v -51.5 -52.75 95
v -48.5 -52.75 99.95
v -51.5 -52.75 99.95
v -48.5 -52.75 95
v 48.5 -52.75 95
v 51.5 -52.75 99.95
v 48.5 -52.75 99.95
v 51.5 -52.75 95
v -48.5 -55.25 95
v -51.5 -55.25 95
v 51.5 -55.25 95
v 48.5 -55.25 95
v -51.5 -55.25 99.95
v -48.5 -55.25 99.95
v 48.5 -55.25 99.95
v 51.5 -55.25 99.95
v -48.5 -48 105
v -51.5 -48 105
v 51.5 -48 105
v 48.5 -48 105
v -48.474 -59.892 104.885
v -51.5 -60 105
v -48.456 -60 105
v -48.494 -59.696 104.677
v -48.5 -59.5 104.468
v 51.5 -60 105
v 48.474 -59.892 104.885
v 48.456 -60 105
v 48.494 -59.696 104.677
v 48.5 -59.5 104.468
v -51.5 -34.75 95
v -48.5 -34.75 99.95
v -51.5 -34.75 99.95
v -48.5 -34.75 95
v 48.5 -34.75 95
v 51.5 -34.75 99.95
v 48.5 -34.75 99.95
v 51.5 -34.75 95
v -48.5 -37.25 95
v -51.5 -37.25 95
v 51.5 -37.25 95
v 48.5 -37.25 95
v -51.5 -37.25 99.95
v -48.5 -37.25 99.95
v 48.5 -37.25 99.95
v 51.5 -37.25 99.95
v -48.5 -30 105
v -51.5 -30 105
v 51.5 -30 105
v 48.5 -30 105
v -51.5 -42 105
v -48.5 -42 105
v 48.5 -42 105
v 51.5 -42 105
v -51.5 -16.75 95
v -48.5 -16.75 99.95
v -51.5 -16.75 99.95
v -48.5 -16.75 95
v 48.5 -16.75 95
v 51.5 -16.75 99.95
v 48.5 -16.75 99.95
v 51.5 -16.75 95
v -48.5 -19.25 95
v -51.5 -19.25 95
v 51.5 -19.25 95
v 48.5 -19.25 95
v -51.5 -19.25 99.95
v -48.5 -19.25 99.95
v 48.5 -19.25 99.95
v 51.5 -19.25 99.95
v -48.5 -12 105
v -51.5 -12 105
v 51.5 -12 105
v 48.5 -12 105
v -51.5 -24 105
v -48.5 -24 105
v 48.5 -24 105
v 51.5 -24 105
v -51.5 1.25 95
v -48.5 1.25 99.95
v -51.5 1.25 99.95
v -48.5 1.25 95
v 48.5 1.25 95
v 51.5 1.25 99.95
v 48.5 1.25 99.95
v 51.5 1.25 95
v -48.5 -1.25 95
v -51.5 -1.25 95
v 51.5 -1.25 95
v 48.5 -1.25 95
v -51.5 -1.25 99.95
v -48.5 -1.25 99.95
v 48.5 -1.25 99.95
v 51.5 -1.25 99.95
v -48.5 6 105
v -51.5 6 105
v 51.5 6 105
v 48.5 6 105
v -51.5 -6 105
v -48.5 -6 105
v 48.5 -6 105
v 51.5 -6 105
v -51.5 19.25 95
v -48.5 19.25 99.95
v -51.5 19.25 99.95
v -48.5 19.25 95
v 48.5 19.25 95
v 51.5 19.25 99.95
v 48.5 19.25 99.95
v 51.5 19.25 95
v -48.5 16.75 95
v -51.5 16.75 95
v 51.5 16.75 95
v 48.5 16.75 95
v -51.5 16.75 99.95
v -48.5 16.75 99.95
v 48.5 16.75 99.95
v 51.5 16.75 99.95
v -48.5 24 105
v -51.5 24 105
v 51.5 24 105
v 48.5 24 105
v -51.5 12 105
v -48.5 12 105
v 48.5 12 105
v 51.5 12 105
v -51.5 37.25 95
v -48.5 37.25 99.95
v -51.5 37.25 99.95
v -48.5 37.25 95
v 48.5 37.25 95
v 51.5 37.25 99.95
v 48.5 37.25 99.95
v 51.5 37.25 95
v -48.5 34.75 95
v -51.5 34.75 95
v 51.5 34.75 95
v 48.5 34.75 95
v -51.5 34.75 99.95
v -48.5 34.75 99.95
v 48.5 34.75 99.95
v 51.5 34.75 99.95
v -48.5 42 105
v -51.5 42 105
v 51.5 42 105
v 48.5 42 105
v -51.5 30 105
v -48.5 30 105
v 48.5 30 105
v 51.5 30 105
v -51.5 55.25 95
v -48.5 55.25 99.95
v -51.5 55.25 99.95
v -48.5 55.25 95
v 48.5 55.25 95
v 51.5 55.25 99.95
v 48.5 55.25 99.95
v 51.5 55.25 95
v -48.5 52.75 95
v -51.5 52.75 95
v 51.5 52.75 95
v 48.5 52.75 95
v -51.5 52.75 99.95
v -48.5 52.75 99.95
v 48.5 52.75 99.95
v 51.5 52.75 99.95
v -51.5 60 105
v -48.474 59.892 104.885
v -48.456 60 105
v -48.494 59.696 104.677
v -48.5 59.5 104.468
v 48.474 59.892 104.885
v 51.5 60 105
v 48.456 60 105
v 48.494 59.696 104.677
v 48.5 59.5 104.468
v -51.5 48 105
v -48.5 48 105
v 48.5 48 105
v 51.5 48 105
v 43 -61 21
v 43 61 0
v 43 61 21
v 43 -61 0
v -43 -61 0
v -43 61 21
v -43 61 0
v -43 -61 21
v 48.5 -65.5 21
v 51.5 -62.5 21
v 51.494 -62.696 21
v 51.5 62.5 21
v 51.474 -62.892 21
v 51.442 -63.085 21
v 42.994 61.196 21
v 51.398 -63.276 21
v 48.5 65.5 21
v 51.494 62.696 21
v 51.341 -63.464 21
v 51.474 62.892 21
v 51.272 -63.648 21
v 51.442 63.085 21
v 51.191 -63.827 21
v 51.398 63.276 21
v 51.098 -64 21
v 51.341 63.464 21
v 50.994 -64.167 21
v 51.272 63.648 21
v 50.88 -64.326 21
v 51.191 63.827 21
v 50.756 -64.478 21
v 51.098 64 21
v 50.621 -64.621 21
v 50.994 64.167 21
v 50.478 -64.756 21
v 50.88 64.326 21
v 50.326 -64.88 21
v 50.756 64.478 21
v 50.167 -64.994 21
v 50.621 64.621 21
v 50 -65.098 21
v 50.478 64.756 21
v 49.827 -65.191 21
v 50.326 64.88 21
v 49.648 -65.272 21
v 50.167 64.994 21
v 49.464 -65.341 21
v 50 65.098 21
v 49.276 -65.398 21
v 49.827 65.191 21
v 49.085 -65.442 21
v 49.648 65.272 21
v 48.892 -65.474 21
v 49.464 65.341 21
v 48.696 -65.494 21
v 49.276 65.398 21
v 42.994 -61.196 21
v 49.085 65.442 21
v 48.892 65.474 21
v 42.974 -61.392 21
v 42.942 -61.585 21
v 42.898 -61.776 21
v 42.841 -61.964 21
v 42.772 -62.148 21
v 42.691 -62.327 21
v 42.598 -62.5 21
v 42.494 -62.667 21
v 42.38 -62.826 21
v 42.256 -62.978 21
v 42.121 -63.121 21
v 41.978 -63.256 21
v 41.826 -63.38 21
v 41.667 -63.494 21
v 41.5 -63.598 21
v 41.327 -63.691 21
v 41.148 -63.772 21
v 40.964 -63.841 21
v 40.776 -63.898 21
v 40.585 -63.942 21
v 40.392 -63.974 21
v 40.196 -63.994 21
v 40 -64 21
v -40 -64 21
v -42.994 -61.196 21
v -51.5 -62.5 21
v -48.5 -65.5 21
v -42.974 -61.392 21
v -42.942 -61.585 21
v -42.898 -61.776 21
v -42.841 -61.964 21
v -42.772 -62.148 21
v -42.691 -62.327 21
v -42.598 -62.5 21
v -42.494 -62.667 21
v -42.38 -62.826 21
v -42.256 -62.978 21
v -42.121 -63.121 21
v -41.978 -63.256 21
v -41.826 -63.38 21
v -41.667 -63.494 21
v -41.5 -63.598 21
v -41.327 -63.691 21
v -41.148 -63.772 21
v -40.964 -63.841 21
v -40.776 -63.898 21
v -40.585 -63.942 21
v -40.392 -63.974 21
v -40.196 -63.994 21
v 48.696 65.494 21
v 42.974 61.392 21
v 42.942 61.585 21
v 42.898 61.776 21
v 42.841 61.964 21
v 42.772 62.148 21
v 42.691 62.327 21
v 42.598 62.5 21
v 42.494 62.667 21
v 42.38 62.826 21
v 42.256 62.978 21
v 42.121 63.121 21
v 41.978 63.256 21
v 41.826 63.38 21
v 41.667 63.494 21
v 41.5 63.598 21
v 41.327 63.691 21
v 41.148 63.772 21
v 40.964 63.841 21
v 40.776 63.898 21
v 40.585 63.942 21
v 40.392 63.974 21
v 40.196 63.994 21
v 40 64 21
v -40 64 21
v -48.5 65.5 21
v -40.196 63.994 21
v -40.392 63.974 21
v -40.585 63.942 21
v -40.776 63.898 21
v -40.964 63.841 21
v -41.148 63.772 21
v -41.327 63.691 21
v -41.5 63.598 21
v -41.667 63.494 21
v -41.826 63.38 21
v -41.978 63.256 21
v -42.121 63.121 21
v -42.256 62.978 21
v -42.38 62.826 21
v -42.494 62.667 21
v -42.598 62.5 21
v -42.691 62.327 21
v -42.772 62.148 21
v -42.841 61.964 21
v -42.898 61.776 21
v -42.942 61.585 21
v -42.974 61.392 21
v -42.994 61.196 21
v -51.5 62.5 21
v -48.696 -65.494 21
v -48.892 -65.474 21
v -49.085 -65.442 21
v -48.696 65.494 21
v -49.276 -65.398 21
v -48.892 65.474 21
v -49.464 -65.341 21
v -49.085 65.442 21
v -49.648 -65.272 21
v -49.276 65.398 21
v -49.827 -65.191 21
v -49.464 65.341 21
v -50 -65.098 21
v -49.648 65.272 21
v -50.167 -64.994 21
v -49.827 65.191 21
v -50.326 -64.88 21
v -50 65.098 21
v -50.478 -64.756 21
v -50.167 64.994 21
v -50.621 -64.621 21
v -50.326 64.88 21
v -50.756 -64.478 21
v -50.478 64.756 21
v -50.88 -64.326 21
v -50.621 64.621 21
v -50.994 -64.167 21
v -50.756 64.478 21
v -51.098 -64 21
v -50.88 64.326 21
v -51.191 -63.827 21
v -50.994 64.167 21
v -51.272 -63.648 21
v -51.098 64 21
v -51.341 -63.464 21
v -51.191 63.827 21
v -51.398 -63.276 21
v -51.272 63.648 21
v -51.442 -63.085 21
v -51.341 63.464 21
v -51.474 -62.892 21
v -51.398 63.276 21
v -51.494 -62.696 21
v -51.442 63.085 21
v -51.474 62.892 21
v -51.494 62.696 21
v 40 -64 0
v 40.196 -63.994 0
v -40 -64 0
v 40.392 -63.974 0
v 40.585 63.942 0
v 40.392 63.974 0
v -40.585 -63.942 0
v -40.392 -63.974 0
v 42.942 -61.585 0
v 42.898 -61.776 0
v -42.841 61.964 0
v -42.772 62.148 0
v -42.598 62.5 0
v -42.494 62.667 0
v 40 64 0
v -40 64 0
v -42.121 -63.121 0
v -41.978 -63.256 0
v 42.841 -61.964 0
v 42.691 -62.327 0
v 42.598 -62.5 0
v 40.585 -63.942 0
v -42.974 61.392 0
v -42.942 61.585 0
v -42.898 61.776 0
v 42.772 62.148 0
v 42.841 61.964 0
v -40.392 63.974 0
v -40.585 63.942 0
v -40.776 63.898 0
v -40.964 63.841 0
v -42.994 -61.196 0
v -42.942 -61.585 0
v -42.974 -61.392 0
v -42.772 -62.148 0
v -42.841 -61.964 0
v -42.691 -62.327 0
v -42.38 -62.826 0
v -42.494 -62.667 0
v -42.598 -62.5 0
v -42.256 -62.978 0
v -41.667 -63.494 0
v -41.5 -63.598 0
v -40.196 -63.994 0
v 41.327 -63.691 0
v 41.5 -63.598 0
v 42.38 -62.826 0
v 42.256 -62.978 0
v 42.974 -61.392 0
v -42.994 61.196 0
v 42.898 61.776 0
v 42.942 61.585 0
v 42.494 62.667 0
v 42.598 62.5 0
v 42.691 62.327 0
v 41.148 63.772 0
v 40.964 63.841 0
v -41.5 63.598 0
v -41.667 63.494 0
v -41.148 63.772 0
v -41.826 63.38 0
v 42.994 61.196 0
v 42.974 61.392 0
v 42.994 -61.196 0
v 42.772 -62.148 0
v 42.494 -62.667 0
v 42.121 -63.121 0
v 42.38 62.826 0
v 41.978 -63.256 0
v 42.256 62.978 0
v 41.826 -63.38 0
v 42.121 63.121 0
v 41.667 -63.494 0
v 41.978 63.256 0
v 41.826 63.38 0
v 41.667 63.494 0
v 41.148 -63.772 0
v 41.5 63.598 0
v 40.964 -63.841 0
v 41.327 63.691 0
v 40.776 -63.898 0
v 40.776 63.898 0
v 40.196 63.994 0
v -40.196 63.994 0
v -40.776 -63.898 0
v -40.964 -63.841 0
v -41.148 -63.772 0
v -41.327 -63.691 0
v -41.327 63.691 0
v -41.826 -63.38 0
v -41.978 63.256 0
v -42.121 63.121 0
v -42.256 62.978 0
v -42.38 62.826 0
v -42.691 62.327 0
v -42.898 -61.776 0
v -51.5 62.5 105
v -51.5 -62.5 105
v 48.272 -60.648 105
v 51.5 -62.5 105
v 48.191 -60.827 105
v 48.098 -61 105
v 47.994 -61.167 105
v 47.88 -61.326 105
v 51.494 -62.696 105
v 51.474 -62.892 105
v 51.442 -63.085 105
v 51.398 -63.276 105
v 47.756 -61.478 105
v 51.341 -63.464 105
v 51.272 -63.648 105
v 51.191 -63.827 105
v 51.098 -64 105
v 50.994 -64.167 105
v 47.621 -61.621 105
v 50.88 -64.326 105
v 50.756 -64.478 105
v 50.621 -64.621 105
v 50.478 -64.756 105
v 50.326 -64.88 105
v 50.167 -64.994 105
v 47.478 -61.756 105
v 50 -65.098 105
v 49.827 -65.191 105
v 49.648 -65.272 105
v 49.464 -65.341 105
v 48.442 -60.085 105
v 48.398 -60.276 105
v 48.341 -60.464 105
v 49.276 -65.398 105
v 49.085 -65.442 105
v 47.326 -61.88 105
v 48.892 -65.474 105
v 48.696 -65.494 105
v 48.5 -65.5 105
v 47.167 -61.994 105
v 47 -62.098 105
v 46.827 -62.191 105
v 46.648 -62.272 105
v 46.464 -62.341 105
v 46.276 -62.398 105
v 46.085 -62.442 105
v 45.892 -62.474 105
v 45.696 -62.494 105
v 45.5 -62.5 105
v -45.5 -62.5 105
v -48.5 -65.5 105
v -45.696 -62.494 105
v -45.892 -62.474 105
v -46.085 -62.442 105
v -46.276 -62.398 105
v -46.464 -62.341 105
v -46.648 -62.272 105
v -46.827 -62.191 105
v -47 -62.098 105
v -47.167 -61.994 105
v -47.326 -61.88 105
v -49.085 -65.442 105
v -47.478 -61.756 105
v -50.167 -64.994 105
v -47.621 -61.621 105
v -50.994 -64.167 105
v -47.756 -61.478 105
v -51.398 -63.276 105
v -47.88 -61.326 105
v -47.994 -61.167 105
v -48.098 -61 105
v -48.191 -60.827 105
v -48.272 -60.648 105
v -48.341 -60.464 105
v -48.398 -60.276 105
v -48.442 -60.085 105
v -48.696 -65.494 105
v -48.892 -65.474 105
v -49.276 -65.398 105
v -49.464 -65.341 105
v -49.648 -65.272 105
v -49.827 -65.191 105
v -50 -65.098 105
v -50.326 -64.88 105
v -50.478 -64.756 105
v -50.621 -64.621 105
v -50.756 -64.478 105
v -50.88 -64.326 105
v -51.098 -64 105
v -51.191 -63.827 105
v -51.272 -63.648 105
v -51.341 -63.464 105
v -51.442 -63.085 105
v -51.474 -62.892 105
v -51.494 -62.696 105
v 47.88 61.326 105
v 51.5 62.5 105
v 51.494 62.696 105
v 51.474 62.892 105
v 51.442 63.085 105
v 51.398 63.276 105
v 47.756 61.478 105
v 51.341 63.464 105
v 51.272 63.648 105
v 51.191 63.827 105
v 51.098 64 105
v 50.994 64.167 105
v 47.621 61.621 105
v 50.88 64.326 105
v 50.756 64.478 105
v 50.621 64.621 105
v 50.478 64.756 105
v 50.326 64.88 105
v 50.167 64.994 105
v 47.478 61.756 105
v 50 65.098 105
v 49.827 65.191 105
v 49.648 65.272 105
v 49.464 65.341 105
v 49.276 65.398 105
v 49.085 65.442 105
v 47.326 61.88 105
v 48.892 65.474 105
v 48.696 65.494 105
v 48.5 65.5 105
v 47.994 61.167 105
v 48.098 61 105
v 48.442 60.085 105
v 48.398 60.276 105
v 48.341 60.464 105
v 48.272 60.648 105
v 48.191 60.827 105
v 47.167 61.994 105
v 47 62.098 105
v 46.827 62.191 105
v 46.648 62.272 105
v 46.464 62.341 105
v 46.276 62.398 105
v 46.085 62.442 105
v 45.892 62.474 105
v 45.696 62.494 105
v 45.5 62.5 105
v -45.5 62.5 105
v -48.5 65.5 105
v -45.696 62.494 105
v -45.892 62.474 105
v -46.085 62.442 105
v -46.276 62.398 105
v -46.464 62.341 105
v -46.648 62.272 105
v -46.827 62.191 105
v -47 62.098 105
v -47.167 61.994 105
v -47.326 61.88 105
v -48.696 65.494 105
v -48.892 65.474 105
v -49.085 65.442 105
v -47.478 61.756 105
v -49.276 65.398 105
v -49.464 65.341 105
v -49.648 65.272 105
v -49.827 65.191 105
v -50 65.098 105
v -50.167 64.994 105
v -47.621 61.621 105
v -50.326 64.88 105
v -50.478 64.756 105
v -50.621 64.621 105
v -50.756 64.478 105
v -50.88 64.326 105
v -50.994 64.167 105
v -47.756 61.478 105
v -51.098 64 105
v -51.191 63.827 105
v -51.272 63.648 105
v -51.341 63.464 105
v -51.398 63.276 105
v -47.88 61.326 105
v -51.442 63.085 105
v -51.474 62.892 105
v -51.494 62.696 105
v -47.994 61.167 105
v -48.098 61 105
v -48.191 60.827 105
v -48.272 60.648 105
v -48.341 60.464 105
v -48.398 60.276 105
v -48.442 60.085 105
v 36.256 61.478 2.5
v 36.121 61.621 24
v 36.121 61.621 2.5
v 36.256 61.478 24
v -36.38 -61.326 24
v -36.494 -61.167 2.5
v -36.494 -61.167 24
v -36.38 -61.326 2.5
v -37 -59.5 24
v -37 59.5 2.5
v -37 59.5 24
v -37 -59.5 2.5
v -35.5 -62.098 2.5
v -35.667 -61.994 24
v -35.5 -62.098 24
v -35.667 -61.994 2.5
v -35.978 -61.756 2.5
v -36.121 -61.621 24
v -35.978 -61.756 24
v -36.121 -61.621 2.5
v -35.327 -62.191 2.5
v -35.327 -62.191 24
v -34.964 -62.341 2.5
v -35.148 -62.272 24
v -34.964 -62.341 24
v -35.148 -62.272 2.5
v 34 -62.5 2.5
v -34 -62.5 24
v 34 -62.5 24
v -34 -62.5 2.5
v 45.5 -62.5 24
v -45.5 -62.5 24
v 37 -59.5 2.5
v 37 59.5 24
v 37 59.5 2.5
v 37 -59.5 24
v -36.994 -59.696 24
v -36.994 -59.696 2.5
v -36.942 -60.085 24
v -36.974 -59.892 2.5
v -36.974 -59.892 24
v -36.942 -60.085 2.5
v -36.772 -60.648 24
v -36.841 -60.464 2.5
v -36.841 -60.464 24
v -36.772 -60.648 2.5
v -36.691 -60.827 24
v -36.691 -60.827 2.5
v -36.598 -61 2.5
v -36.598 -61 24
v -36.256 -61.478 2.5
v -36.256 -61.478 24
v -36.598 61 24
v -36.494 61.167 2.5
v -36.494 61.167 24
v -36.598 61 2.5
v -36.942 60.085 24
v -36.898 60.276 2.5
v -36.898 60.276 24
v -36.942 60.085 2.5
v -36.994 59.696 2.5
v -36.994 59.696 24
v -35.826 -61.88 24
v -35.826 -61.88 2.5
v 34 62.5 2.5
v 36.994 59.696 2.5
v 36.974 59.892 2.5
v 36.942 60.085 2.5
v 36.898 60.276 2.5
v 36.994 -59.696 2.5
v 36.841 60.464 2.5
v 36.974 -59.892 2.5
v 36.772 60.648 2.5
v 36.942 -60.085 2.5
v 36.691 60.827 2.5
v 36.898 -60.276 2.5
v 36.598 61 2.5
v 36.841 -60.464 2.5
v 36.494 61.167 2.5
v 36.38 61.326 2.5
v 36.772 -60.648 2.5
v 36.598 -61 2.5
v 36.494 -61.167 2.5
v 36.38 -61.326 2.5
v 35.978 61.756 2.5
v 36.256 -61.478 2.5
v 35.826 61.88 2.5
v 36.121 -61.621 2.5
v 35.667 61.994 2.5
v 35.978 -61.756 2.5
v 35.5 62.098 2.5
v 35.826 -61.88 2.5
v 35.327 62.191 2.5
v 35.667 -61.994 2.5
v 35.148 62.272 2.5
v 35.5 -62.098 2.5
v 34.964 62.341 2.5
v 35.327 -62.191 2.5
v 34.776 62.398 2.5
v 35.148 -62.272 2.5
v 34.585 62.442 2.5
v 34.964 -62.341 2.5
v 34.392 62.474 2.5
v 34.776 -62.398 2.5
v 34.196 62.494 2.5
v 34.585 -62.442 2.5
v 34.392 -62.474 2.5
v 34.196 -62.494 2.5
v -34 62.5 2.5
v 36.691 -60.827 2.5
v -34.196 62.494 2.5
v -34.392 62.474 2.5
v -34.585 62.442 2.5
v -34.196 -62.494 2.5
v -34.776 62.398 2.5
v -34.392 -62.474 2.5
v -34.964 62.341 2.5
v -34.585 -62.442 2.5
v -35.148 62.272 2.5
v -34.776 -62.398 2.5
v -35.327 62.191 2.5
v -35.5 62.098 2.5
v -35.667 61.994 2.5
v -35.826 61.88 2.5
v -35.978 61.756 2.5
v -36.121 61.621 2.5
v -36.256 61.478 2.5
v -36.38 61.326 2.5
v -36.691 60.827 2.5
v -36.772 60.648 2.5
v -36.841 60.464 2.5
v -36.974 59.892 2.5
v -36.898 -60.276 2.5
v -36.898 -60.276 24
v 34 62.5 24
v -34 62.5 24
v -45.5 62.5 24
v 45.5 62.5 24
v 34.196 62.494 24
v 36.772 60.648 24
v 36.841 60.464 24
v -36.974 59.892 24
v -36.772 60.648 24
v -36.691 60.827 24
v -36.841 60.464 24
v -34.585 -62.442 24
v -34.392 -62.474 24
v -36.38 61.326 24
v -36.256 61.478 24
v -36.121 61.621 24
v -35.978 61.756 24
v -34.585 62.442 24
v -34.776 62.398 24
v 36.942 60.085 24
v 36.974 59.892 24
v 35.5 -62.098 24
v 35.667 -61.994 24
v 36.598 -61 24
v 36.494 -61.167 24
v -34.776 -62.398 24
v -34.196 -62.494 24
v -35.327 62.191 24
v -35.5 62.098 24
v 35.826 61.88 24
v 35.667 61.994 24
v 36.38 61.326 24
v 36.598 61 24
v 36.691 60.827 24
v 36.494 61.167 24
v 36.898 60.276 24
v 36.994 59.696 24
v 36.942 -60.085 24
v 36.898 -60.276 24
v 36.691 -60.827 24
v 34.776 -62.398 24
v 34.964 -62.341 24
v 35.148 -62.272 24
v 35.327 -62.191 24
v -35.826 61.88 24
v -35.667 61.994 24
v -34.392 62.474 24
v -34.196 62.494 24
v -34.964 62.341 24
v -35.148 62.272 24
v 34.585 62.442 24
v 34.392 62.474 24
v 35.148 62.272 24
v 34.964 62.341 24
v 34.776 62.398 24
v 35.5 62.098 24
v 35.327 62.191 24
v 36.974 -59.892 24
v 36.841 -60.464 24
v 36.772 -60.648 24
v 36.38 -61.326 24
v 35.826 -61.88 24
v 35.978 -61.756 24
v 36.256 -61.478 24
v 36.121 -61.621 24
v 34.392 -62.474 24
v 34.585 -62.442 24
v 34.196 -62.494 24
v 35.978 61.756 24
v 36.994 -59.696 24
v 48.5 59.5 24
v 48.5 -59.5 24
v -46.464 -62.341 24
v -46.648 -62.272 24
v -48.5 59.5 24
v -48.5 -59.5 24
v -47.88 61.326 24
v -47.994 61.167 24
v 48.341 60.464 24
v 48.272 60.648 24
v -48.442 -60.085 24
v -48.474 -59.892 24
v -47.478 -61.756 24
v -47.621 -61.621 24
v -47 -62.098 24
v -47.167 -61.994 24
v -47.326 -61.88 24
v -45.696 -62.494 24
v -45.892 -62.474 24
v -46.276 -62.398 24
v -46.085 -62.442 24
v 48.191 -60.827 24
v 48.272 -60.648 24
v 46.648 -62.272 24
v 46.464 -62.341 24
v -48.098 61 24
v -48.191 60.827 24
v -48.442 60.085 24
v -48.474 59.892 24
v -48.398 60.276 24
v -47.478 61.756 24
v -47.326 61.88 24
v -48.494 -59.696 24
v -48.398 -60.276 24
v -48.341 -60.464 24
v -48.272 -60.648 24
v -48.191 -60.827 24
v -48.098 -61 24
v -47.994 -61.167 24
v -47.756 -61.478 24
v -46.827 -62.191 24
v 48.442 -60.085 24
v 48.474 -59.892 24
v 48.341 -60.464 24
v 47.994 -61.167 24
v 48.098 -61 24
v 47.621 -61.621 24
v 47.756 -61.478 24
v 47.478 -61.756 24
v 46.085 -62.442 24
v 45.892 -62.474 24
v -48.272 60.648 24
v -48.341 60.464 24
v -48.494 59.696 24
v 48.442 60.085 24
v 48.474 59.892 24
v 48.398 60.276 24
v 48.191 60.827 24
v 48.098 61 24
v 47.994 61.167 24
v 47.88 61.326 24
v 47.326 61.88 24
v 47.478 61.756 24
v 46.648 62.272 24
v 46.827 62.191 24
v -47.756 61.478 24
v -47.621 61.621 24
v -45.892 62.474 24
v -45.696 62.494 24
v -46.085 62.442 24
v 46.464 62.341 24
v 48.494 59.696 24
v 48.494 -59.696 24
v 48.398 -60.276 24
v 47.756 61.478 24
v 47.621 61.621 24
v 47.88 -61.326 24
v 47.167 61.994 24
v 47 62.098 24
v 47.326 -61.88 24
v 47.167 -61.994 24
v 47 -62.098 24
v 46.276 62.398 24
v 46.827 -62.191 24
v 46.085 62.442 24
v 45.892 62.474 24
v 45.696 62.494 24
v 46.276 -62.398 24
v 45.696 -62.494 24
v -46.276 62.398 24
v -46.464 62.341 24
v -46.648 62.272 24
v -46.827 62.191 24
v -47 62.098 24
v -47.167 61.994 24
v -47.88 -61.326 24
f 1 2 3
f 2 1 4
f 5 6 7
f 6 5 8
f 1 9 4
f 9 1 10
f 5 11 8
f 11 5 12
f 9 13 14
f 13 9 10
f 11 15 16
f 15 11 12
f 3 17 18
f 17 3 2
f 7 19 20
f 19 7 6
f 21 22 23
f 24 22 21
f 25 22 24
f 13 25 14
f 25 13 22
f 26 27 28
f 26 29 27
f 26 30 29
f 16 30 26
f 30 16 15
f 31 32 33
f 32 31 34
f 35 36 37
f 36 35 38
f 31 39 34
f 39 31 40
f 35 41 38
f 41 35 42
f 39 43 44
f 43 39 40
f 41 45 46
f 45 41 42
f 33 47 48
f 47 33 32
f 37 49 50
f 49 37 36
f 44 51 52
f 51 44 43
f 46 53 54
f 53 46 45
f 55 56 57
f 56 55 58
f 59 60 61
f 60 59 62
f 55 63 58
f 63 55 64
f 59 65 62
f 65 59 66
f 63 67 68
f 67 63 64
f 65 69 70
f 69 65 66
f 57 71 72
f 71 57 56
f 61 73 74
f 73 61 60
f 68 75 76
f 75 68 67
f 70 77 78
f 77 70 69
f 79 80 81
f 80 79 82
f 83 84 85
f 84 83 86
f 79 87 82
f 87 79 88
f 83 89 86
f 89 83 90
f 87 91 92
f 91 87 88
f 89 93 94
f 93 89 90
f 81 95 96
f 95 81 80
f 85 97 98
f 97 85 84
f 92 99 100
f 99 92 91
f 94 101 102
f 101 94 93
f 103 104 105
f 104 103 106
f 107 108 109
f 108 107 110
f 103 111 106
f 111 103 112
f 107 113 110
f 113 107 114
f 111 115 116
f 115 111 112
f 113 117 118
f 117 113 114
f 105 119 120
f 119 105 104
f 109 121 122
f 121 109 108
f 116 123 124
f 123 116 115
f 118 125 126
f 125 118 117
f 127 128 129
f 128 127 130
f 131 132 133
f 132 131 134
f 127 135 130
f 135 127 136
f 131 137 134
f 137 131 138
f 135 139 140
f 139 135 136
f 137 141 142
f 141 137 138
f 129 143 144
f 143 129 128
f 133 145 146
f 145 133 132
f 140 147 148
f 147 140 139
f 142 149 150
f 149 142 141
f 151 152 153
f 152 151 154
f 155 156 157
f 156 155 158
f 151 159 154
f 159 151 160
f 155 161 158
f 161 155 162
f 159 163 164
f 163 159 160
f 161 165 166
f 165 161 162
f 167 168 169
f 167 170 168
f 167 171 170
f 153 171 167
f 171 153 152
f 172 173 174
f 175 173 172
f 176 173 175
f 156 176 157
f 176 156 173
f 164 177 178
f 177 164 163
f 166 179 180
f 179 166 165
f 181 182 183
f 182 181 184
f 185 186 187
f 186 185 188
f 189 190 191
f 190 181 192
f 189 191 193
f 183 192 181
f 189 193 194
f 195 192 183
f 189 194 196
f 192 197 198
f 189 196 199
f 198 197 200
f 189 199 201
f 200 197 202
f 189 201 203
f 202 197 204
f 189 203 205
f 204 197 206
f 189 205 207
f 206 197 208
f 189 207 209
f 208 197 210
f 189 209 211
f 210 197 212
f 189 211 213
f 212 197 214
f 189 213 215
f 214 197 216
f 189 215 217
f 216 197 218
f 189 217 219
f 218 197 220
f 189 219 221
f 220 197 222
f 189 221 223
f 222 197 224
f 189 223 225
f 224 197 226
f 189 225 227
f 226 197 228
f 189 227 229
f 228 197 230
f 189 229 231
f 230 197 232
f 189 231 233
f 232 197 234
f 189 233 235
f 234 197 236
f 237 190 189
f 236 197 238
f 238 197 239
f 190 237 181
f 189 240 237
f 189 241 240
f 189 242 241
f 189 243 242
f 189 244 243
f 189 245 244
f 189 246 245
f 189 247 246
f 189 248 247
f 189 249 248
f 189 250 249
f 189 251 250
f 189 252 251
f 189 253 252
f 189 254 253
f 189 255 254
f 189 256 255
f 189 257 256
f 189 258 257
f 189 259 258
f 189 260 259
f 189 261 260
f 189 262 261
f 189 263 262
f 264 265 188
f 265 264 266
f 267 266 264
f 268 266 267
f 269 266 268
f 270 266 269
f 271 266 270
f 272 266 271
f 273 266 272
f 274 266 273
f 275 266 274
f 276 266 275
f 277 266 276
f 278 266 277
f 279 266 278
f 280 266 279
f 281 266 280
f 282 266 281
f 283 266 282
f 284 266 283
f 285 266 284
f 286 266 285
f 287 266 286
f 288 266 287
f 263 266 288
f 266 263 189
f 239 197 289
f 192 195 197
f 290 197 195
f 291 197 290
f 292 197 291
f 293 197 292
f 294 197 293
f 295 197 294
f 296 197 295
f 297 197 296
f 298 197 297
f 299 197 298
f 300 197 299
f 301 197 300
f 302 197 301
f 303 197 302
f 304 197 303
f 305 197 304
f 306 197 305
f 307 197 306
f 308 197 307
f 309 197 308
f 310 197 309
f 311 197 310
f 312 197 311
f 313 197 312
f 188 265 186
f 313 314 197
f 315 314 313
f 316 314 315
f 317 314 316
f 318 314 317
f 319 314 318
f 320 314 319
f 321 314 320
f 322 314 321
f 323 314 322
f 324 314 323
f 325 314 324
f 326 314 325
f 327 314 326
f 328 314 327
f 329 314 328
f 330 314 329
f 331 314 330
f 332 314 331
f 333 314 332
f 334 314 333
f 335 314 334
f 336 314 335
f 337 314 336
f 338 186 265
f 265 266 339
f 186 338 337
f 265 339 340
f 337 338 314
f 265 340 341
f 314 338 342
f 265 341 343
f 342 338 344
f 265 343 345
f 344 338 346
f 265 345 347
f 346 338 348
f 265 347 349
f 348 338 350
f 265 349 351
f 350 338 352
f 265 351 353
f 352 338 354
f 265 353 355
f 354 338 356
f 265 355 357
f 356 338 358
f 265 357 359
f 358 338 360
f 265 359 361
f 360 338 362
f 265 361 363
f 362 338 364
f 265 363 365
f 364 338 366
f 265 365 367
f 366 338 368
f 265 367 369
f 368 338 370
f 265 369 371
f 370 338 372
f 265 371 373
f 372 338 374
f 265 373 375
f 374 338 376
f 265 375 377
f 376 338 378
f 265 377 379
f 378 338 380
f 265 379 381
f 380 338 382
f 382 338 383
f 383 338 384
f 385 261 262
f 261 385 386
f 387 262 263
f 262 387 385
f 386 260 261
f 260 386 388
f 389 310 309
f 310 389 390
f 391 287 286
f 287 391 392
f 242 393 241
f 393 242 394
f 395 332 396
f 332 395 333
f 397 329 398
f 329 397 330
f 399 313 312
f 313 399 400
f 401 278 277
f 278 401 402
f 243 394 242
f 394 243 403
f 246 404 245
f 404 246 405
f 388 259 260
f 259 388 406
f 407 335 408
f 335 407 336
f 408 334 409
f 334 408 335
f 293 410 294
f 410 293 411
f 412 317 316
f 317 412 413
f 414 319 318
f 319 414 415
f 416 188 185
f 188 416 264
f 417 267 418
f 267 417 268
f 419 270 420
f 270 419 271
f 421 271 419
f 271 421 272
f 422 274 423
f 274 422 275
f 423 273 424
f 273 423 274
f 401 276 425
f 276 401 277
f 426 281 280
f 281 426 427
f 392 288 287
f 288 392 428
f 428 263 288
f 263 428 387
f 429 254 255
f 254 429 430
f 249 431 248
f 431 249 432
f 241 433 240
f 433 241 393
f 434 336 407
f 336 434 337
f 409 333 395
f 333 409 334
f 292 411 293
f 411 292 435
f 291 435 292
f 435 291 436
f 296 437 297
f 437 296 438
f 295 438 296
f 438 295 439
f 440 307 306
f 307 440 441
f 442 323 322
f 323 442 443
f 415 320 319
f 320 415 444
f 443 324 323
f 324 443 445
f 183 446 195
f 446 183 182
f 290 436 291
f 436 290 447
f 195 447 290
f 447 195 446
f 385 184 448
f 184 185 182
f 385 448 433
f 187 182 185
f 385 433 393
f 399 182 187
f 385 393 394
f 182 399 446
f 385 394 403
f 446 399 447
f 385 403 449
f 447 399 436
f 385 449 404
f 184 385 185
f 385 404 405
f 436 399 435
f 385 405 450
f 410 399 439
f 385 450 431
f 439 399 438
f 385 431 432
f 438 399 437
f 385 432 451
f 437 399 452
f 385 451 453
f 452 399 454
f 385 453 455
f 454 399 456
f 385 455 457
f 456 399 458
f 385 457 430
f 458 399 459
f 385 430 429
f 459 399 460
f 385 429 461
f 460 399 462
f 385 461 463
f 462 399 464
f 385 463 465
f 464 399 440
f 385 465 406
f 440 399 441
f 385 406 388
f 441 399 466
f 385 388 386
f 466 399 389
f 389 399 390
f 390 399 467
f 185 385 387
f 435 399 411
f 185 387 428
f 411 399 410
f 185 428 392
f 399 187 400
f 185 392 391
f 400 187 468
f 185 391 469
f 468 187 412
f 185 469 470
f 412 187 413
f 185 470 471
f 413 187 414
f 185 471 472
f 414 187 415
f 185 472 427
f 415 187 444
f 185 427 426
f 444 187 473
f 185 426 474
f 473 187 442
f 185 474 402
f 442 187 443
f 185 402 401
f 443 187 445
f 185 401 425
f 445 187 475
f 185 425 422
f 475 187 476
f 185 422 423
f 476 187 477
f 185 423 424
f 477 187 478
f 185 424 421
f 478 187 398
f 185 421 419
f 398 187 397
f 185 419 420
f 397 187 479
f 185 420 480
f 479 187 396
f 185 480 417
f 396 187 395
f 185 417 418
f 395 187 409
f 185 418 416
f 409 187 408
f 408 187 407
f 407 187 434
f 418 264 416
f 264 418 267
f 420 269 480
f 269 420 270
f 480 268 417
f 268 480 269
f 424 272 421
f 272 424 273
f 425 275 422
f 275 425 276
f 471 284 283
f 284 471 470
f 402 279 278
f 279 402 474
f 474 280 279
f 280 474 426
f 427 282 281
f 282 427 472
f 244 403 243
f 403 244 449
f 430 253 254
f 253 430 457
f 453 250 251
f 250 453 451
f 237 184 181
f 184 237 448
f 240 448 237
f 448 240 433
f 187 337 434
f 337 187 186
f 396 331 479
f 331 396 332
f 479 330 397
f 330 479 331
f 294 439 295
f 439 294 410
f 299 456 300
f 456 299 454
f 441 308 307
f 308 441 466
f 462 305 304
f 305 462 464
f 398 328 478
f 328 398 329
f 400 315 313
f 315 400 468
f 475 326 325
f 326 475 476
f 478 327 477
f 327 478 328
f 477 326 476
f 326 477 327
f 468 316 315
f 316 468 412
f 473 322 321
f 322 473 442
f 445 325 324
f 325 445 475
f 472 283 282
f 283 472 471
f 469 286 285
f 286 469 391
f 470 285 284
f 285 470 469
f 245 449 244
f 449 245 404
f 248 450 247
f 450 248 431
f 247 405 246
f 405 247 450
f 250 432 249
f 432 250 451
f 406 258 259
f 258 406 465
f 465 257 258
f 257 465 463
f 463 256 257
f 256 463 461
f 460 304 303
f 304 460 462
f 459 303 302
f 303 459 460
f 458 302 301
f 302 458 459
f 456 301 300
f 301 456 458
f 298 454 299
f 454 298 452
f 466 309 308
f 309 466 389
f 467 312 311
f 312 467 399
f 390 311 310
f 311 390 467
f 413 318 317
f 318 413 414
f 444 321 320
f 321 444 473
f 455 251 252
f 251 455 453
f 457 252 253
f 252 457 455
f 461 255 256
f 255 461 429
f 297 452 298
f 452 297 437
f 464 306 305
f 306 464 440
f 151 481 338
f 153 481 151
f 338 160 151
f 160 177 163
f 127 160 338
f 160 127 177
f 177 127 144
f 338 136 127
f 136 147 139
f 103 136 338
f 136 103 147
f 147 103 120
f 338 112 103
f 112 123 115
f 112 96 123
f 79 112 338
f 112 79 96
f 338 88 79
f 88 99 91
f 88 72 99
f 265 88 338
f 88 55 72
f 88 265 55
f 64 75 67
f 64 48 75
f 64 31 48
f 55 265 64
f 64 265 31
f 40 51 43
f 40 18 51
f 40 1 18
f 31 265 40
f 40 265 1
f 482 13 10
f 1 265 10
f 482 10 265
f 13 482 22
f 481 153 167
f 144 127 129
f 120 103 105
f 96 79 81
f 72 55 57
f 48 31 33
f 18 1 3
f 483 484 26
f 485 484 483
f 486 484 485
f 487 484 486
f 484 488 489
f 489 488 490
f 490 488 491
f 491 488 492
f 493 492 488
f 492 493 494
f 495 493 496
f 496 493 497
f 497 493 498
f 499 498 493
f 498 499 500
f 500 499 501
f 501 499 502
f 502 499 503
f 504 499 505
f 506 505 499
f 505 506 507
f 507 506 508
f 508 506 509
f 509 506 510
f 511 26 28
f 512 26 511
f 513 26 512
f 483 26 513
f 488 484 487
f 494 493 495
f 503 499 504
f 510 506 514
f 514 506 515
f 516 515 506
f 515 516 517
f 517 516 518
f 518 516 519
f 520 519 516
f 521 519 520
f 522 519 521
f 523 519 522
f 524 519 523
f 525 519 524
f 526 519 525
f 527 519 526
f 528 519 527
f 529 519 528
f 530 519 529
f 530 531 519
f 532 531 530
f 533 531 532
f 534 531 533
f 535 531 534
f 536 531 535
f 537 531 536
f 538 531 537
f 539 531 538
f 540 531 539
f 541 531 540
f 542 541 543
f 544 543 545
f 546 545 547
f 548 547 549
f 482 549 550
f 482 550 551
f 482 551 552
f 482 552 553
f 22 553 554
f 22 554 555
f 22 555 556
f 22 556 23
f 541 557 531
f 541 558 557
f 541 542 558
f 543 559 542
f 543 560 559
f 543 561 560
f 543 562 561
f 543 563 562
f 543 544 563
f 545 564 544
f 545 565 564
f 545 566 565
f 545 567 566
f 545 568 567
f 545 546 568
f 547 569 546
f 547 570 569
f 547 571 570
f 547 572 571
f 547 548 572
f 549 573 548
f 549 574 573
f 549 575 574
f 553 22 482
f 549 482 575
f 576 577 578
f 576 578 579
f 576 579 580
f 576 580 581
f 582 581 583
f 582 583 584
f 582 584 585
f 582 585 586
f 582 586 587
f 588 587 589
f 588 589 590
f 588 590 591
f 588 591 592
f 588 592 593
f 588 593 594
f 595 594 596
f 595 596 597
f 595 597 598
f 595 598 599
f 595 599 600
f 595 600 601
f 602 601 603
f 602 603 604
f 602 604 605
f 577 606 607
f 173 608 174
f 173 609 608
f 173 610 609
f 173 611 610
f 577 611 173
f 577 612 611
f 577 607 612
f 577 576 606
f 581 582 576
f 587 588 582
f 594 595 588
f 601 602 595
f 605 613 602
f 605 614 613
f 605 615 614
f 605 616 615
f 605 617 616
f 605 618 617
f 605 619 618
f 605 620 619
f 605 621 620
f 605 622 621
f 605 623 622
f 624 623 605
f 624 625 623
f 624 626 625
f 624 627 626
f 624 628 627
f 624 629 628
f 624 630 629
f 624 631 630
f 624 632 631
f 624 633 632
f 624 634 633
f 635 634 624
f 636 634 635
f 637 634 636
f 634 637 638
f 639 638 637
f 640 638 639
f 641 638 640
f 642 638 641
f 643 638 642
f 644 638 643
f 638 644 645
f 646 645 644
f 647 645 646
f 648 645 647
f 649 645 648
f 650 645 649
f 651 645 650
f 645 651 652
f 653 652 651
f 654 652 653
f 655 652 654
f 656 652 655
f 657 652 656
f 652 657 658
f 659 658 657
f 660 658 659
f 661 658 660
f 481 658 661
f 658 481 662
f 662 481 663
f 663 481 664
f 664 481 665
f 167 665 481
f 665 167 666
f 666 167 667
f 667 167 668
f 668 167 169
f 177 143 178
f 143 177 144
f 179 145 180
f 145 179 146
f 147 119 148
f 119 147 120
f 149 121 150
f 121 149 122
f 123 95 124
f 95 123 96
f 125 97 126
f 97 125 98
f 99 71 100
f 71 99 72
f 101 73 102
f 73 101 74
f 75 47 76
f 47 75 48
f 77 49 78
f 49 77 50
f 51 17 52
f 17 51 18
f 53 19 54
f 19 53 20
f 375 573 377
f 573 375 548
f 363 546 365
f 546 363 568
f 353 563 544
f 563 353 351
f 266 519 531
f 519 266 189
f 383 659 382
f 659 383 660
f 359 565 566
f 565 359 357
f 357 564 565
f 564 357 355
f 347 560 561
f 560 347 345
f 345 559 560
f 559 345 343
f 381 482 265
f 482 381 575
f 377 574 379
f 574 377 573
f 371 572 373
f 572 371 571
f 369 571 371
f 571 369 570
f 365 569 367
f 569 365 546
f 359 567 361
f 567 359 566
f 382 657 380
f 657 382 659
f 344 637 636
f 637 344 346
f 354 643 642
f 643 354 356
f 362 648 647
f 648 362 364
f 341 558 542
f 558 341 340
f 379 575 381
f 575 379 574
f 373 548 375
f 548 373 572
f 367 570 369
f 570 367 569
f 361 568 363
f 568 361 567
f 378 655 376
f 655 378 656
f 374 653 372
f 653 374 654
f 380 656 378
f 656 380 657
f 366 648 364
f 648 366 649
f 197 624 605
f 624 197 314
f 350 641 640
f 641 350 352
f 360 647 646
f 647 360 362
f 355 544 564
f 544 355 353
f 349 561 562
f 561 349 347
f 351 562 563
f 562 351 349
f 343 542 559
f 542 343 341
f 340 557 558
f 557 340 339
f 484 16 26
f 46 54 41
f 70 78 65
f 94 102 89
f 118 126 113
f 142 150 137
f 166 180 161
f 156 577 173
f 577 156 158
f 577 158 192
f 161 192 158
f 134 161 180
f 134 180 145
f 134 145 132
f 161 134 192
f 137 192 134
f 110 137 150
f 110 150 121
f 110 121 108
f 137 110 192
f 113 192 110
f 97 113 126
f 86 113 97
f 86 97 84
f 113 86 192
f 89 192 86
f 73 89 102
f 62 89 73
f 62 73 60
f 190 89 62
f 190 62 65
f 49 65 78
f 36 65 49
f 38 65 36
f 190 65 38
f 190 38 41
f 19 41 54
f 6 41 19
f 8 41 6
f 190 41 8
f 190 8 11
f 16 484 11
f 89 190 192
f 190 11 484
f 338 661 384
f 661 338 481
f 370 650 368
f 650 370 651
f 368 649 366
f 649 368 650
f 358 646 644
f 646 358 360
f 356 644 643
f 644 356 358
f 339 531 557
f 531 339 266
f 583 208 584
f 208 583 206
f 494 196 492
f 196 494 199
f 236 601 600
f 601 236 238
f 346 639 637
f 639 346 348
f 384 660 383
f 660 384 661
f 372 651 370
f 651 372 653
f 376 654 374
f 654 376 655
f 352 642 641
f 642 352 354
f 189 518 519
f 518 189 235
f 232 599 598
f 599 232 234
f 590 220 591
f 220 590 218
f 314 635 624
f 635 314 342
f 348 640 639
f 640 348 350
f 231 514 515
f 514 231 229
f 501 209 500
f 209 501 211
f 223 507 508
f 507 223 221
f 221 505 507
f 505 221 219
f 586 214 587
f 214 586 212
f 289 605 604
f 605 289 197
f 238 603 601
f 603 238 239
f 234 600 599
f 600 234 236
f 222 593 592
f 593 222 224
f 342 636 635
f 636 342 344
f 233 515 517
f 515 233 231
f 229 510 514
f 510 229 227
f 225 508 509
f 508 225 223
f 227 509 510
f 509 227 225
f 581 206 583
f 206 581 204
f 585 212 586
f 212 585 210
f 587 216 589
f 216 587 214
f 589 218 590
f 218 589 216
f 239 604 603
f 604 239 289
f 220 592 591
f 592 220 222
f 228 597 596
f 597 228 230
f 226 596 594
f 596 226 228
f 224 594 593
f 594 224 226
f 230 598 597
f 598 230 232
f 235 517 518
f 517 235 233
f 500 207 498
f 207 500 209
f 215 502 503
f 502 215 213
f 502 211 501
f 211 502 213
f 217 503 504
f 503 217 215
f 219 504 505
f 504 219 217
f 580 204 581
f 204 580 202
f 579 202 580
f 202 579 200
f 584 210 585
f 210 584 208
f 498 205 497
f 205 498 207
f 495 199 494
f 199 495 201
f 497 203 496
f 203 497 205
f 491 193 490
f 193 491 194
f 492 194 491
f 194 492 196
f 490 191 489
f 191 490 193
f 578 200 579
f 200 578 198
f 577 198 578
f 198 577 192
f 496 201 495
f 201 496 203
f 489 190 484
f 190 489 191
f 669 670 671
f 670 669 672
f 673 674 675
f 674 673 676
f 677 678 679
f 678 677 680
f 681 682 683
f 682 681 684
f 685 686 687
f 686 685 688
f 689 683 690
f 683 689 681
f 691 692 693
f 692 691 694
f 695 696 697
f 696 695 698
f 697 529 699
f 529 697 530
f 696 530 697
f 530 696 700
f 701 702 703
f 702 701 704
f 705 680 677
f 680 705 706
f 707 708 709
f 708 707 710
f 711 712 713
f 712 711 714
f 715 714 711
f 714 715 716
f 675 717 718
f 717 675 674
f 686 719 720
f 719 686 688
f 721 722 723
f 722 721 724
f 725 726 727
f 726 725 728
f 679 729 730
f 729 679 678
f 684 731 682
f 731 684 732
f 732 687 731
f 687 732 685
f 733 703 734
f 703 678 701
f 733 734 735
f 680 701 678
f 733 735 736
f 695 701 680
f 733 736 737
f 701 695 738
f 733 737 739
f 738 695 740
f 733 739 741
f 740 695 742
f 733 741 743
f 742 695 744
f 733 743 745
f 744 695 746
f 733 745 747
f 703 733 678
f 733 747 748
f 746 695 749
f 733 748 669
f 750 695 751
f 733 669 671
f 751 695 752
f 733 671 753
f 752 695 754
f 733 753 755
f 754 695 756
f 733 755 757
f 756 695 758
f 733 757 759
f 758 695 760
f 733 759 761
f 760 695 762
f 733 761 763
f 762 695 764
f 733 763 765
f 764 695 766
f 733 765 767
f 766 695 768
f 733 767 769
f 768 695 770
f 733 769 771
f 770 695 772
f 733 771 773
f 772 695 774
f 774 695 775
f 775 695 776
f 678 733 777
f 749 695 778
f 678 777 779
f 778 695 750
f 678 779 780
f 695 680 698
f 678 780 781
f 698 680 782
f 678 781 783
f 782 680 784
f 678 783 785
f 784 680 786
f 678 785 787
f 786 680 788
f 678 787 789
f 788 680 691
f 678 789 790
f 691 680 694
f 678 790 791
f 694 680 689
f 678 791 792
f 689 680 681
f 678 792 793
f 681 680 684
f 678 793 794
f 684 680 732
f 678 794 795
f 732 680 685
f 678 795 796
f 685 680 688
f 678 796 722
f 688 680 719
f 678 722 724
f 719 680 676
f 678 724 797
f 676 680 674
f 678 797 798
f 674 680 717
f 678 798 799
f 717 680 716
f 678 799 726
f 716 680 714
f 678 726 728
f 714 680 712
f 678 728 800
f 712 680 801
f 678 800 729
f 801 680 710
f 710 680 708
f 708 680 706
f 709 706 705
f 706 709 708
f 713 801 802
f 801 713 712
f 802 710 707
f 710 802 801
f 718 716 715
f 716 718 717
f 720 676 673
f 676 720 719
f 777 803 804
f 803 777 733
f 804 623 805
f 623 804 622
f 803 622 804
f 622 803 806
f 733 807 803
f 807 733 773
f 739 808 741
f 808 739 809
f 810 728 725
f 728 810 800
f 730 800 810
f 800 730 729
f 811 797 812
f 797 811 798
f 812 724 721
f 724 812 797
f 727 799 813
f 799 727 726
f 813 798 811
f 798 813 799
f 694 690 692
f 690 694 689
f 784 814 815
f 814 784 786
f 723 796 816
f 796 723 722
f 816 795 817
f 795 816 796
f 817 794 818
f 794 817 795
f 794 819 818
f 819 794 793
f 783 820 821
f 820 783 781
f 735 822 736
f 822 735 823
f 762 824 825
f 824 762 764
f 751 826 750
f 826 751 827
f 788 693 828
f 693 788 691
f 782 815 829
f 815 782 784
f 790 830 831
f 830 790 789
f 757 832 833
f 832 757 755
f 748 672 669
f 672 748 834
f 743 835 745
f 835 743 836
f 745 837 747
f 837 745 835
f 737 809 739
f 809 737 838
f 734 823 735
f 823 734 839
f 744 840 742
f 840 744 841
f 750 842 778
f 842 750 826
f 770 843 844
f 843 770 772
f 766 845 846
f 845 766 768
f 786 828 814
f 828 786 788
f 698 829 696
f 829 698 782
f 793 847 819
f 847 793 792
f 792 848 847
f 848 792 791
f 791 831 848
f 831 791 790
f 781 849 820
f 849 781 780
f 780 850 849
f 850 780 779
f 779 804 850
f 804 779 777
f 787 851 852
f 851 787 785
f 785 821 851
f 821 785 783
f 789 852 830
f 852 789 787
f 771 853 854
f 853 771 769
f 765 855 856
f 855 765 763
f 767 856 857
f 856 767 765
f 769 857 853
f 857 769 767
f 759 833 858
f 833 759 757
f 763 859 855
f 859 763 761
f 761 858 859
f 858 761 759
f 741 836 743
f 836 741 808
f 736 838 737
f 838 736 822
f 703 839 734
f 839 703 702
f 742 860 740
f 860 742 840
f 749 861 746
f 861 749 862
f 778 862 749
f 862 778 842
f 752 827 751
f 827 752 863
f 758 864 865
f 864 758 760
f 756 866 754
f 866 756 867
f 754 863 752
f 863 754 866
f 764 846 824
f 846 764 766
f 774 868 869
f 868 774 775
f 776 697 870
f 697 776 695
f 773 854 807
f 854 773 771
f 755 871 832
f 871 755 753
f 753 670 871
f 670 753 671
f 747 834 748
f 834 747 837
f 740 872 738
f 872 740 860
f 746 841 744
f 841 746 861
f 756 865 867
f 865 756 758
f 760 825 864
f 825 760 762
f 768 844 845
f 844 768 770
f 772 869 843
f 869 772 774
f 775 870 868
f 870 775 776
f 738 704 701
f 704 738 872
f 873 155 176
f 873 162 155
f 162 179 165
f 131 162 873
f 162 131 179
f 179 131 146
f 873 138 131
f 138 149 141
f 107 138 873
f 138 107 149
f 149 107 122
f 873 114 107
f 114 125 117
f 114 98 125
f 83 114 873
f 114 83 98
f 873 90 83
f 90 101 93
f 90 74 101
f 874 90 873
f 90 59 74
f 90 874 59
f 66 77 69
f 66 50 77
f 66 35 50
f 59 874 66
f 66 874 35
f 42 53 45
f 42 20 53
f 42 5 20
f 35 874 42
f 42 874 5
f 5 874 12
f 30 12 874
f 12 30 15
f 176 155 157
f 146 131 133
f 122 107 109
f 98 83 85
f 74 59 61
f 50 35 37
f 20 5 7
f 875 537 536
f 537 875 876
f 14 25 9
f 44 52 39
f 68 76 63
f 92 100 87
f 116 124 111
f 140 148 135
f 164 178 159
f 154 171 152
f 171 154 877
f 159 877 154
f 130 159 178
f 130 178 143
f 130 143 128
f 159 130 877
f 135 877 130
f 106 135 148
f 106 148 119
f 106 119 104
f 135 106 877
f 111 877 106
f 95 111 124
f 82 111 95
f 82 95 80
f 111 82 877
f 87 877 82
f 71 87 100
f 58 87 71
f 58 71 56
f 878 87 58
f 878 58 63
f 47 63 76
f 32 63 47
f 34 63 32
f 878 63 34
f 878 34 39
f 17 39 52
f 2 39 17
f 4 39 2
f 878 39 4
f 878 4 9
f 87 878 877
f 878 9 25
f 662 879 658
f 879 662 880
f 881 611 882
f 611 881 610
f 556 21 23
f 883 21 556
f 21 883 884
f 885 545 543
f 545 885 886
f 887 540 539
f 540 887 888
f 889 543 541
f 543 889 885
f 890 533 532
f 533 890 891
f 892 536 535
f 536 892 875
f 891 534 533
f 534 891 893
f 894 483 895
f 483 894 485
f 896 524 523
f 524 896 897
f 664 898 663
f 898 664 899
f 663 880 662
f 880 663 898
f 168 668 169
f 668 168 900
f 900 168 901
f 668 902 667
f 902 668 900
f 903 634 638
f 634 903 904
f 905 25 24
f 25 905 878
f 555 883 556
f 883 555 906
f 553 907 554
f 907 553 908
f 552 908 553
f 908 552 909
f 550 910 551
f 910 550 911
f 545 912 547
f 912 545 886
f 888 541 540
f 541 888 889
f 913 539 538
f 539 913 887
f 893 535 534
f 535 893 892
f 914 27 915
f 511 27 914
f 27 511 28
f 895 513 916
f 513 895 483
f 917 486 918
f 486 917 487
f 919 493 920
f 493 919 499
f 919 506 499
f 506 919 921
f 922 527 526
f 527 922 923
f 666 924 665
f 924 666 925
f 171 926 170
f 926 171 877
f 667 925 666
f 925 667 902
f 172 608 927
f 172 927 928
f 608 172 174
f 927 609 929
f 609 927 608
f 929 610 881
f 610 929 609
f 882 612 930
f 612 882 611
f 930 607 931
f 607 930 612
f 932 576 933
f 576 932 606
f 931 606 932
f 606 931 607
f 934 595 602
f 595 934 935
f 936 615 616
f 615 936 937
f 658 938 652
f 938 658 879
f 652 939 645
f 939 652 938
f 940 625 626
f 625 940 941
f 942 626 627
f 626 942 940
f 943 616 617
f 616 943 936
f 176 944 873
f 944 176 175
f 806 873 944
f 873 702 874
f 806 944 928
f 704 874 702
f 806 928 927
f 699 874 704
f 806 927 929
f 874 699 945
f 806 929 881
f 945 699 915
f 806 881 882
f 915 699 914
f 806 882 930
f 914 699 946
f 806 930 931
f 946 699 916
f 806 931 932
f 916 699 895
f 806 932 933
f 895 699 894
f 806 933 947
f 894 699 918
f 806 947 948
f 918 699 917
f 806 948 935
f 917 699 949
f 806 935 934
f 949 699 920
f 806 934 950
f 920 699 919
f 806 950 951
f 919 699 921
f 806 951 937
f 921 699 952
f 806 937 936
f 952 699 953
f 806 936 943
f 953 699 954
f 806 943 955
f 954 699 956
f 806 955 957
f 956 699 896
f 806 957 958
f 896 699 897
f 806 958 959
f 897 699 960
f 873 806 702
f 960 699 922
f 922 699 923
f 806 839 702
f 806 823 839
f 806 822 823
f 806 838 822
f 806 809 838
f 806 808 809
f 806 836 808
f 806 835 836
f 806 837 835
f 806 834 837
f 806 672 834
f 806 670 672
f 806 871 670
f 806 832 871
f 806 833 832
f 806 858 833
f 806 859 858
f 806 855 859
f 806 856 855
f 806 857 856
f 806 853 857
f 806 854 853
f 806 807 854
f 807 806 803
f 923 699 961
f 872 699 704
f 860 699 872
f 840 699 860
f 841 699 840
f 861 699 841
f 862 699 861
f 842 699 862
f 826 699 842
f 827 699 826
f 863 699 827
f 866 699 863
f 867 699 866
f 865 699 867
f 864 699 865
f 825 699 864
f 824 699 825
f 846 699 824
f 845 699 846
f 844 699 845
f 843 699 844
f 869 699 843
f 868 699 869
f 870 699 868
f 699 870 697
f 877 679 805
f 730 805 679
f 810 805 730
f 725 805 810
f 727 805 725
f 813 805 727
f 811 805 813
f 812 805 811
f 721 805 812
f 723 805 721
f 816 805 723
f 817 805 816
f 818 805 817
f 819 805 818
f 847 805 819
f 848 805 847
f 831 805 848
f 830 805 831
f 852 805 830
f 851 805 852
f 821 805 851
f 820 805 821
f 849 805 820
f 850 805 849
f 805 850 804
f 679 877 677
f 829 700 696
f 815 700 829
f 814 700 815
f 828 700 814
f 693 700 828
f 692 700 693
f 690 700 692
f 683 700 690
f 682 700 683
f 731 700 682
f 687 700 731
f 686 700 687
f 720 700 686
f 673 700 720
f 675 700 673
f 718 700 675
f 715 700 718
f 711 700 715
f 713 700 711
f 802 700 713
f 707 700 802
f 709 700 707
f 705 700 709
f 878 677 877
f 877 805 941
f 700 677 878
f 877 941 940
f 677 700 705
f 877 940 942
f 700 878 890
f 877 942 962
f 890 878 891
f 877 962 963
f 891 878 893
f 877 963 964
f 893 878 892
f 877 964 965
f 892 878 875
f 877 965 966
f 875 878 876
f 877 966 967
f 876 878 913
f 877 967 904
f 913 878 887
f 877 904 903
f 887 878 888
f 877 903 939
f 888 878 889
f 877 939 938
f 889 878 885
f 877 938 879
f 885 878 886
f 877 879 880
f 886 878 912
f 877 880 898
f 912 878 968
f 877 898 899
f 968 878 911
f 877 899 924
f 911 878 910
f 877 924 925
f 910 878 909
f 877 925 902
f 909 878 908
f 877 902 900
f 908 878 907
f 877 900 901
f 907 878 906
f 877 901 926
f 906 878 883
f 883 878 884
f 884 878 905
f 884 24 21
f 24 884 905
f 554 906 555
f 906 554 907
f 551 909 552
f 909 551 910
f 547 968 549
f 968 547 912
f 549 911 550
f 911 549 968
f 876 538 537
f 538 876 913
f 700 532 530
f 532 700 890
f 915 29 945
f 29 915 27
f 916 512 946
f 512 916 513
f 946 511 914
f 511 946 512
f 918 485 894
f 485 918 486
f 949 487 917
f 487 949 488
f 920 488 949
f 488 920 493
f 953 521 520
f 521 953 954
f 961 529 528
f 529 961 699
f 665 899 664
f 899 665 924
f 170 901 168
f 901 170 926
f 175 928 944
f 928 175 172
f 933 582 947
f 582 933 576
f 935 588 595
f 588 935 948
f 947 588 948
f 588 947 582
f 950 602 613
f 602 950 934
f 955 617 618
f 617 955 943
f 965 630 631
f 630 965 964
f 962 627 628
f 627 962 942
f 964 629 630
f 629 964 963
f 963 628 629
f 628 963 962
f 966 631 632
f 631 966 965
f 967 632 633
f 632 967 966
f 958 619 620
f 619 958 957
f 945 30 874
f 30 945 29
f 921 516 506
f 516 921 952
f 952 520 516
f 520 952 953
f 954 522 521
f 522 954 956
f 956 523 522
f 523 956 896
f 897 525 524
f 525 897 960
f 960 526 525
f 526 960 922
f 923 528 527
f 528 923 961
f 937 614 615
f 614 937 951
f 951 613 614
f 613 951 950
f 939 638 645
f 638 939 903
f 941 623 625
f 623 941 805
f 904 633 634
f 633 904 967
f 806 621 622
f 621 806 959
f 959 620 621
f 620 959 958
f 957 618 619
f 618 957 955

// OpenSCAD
$fn=96;
shellThick=3;

translate([0,0,9.5]) difference() {
	union() {
		minkowski() {
			cube([80, 122, 19], center=true);
			cylinder(r=3, h=2);
		}
		translate([0,0,88/2+8.5]) {
			minkowski() {
				cube([97, 125, 82], center=true);
				cylinder(r=3, h=2);
			}
		}
	}
	minkowski() {
		translate([0,0,shellThick]) cube([74-shellThick*2, 125-shellThick*2, 20], center=true);
		cylinder(r=3, h=2);
	}
	translate([0,0,88/2+10.5+shellThick]) minkowski() {
		cube([97-shellThick*2, 125-shellThick*2, 86], center=true);
		cylinder(r=3, h=2);
	}
	for(m = [-54:18:54]) {
		translate([0,m,95-9.5]) holderspace();
	}

}

//rotate([90, 0, 90]) text("1", size=15);
*	for(m = [-54:18:54]) {
		translate([0,m,95]) holderspace();
	}

module holderspace() {
	translate([0,0,2.5]) union() {
		cube([200, 2.5,5], center=true);
		translate([0,0,2.5]) hull() {
			cube([200, 2.5,0.1], center=true);
			translate([0,0,6]) cube([200, 12,2], center=true);
		}
	}
}



*translate([0,80,52.5]) cube([86,125,105], center=true);
*translate([0,0,156.5]) cube([97,125,105], center=true);
*translate([-80,0,10.5]) cube([97,128,21], center=true);
*translate([0,0,0]) cube([97,128,95]);
